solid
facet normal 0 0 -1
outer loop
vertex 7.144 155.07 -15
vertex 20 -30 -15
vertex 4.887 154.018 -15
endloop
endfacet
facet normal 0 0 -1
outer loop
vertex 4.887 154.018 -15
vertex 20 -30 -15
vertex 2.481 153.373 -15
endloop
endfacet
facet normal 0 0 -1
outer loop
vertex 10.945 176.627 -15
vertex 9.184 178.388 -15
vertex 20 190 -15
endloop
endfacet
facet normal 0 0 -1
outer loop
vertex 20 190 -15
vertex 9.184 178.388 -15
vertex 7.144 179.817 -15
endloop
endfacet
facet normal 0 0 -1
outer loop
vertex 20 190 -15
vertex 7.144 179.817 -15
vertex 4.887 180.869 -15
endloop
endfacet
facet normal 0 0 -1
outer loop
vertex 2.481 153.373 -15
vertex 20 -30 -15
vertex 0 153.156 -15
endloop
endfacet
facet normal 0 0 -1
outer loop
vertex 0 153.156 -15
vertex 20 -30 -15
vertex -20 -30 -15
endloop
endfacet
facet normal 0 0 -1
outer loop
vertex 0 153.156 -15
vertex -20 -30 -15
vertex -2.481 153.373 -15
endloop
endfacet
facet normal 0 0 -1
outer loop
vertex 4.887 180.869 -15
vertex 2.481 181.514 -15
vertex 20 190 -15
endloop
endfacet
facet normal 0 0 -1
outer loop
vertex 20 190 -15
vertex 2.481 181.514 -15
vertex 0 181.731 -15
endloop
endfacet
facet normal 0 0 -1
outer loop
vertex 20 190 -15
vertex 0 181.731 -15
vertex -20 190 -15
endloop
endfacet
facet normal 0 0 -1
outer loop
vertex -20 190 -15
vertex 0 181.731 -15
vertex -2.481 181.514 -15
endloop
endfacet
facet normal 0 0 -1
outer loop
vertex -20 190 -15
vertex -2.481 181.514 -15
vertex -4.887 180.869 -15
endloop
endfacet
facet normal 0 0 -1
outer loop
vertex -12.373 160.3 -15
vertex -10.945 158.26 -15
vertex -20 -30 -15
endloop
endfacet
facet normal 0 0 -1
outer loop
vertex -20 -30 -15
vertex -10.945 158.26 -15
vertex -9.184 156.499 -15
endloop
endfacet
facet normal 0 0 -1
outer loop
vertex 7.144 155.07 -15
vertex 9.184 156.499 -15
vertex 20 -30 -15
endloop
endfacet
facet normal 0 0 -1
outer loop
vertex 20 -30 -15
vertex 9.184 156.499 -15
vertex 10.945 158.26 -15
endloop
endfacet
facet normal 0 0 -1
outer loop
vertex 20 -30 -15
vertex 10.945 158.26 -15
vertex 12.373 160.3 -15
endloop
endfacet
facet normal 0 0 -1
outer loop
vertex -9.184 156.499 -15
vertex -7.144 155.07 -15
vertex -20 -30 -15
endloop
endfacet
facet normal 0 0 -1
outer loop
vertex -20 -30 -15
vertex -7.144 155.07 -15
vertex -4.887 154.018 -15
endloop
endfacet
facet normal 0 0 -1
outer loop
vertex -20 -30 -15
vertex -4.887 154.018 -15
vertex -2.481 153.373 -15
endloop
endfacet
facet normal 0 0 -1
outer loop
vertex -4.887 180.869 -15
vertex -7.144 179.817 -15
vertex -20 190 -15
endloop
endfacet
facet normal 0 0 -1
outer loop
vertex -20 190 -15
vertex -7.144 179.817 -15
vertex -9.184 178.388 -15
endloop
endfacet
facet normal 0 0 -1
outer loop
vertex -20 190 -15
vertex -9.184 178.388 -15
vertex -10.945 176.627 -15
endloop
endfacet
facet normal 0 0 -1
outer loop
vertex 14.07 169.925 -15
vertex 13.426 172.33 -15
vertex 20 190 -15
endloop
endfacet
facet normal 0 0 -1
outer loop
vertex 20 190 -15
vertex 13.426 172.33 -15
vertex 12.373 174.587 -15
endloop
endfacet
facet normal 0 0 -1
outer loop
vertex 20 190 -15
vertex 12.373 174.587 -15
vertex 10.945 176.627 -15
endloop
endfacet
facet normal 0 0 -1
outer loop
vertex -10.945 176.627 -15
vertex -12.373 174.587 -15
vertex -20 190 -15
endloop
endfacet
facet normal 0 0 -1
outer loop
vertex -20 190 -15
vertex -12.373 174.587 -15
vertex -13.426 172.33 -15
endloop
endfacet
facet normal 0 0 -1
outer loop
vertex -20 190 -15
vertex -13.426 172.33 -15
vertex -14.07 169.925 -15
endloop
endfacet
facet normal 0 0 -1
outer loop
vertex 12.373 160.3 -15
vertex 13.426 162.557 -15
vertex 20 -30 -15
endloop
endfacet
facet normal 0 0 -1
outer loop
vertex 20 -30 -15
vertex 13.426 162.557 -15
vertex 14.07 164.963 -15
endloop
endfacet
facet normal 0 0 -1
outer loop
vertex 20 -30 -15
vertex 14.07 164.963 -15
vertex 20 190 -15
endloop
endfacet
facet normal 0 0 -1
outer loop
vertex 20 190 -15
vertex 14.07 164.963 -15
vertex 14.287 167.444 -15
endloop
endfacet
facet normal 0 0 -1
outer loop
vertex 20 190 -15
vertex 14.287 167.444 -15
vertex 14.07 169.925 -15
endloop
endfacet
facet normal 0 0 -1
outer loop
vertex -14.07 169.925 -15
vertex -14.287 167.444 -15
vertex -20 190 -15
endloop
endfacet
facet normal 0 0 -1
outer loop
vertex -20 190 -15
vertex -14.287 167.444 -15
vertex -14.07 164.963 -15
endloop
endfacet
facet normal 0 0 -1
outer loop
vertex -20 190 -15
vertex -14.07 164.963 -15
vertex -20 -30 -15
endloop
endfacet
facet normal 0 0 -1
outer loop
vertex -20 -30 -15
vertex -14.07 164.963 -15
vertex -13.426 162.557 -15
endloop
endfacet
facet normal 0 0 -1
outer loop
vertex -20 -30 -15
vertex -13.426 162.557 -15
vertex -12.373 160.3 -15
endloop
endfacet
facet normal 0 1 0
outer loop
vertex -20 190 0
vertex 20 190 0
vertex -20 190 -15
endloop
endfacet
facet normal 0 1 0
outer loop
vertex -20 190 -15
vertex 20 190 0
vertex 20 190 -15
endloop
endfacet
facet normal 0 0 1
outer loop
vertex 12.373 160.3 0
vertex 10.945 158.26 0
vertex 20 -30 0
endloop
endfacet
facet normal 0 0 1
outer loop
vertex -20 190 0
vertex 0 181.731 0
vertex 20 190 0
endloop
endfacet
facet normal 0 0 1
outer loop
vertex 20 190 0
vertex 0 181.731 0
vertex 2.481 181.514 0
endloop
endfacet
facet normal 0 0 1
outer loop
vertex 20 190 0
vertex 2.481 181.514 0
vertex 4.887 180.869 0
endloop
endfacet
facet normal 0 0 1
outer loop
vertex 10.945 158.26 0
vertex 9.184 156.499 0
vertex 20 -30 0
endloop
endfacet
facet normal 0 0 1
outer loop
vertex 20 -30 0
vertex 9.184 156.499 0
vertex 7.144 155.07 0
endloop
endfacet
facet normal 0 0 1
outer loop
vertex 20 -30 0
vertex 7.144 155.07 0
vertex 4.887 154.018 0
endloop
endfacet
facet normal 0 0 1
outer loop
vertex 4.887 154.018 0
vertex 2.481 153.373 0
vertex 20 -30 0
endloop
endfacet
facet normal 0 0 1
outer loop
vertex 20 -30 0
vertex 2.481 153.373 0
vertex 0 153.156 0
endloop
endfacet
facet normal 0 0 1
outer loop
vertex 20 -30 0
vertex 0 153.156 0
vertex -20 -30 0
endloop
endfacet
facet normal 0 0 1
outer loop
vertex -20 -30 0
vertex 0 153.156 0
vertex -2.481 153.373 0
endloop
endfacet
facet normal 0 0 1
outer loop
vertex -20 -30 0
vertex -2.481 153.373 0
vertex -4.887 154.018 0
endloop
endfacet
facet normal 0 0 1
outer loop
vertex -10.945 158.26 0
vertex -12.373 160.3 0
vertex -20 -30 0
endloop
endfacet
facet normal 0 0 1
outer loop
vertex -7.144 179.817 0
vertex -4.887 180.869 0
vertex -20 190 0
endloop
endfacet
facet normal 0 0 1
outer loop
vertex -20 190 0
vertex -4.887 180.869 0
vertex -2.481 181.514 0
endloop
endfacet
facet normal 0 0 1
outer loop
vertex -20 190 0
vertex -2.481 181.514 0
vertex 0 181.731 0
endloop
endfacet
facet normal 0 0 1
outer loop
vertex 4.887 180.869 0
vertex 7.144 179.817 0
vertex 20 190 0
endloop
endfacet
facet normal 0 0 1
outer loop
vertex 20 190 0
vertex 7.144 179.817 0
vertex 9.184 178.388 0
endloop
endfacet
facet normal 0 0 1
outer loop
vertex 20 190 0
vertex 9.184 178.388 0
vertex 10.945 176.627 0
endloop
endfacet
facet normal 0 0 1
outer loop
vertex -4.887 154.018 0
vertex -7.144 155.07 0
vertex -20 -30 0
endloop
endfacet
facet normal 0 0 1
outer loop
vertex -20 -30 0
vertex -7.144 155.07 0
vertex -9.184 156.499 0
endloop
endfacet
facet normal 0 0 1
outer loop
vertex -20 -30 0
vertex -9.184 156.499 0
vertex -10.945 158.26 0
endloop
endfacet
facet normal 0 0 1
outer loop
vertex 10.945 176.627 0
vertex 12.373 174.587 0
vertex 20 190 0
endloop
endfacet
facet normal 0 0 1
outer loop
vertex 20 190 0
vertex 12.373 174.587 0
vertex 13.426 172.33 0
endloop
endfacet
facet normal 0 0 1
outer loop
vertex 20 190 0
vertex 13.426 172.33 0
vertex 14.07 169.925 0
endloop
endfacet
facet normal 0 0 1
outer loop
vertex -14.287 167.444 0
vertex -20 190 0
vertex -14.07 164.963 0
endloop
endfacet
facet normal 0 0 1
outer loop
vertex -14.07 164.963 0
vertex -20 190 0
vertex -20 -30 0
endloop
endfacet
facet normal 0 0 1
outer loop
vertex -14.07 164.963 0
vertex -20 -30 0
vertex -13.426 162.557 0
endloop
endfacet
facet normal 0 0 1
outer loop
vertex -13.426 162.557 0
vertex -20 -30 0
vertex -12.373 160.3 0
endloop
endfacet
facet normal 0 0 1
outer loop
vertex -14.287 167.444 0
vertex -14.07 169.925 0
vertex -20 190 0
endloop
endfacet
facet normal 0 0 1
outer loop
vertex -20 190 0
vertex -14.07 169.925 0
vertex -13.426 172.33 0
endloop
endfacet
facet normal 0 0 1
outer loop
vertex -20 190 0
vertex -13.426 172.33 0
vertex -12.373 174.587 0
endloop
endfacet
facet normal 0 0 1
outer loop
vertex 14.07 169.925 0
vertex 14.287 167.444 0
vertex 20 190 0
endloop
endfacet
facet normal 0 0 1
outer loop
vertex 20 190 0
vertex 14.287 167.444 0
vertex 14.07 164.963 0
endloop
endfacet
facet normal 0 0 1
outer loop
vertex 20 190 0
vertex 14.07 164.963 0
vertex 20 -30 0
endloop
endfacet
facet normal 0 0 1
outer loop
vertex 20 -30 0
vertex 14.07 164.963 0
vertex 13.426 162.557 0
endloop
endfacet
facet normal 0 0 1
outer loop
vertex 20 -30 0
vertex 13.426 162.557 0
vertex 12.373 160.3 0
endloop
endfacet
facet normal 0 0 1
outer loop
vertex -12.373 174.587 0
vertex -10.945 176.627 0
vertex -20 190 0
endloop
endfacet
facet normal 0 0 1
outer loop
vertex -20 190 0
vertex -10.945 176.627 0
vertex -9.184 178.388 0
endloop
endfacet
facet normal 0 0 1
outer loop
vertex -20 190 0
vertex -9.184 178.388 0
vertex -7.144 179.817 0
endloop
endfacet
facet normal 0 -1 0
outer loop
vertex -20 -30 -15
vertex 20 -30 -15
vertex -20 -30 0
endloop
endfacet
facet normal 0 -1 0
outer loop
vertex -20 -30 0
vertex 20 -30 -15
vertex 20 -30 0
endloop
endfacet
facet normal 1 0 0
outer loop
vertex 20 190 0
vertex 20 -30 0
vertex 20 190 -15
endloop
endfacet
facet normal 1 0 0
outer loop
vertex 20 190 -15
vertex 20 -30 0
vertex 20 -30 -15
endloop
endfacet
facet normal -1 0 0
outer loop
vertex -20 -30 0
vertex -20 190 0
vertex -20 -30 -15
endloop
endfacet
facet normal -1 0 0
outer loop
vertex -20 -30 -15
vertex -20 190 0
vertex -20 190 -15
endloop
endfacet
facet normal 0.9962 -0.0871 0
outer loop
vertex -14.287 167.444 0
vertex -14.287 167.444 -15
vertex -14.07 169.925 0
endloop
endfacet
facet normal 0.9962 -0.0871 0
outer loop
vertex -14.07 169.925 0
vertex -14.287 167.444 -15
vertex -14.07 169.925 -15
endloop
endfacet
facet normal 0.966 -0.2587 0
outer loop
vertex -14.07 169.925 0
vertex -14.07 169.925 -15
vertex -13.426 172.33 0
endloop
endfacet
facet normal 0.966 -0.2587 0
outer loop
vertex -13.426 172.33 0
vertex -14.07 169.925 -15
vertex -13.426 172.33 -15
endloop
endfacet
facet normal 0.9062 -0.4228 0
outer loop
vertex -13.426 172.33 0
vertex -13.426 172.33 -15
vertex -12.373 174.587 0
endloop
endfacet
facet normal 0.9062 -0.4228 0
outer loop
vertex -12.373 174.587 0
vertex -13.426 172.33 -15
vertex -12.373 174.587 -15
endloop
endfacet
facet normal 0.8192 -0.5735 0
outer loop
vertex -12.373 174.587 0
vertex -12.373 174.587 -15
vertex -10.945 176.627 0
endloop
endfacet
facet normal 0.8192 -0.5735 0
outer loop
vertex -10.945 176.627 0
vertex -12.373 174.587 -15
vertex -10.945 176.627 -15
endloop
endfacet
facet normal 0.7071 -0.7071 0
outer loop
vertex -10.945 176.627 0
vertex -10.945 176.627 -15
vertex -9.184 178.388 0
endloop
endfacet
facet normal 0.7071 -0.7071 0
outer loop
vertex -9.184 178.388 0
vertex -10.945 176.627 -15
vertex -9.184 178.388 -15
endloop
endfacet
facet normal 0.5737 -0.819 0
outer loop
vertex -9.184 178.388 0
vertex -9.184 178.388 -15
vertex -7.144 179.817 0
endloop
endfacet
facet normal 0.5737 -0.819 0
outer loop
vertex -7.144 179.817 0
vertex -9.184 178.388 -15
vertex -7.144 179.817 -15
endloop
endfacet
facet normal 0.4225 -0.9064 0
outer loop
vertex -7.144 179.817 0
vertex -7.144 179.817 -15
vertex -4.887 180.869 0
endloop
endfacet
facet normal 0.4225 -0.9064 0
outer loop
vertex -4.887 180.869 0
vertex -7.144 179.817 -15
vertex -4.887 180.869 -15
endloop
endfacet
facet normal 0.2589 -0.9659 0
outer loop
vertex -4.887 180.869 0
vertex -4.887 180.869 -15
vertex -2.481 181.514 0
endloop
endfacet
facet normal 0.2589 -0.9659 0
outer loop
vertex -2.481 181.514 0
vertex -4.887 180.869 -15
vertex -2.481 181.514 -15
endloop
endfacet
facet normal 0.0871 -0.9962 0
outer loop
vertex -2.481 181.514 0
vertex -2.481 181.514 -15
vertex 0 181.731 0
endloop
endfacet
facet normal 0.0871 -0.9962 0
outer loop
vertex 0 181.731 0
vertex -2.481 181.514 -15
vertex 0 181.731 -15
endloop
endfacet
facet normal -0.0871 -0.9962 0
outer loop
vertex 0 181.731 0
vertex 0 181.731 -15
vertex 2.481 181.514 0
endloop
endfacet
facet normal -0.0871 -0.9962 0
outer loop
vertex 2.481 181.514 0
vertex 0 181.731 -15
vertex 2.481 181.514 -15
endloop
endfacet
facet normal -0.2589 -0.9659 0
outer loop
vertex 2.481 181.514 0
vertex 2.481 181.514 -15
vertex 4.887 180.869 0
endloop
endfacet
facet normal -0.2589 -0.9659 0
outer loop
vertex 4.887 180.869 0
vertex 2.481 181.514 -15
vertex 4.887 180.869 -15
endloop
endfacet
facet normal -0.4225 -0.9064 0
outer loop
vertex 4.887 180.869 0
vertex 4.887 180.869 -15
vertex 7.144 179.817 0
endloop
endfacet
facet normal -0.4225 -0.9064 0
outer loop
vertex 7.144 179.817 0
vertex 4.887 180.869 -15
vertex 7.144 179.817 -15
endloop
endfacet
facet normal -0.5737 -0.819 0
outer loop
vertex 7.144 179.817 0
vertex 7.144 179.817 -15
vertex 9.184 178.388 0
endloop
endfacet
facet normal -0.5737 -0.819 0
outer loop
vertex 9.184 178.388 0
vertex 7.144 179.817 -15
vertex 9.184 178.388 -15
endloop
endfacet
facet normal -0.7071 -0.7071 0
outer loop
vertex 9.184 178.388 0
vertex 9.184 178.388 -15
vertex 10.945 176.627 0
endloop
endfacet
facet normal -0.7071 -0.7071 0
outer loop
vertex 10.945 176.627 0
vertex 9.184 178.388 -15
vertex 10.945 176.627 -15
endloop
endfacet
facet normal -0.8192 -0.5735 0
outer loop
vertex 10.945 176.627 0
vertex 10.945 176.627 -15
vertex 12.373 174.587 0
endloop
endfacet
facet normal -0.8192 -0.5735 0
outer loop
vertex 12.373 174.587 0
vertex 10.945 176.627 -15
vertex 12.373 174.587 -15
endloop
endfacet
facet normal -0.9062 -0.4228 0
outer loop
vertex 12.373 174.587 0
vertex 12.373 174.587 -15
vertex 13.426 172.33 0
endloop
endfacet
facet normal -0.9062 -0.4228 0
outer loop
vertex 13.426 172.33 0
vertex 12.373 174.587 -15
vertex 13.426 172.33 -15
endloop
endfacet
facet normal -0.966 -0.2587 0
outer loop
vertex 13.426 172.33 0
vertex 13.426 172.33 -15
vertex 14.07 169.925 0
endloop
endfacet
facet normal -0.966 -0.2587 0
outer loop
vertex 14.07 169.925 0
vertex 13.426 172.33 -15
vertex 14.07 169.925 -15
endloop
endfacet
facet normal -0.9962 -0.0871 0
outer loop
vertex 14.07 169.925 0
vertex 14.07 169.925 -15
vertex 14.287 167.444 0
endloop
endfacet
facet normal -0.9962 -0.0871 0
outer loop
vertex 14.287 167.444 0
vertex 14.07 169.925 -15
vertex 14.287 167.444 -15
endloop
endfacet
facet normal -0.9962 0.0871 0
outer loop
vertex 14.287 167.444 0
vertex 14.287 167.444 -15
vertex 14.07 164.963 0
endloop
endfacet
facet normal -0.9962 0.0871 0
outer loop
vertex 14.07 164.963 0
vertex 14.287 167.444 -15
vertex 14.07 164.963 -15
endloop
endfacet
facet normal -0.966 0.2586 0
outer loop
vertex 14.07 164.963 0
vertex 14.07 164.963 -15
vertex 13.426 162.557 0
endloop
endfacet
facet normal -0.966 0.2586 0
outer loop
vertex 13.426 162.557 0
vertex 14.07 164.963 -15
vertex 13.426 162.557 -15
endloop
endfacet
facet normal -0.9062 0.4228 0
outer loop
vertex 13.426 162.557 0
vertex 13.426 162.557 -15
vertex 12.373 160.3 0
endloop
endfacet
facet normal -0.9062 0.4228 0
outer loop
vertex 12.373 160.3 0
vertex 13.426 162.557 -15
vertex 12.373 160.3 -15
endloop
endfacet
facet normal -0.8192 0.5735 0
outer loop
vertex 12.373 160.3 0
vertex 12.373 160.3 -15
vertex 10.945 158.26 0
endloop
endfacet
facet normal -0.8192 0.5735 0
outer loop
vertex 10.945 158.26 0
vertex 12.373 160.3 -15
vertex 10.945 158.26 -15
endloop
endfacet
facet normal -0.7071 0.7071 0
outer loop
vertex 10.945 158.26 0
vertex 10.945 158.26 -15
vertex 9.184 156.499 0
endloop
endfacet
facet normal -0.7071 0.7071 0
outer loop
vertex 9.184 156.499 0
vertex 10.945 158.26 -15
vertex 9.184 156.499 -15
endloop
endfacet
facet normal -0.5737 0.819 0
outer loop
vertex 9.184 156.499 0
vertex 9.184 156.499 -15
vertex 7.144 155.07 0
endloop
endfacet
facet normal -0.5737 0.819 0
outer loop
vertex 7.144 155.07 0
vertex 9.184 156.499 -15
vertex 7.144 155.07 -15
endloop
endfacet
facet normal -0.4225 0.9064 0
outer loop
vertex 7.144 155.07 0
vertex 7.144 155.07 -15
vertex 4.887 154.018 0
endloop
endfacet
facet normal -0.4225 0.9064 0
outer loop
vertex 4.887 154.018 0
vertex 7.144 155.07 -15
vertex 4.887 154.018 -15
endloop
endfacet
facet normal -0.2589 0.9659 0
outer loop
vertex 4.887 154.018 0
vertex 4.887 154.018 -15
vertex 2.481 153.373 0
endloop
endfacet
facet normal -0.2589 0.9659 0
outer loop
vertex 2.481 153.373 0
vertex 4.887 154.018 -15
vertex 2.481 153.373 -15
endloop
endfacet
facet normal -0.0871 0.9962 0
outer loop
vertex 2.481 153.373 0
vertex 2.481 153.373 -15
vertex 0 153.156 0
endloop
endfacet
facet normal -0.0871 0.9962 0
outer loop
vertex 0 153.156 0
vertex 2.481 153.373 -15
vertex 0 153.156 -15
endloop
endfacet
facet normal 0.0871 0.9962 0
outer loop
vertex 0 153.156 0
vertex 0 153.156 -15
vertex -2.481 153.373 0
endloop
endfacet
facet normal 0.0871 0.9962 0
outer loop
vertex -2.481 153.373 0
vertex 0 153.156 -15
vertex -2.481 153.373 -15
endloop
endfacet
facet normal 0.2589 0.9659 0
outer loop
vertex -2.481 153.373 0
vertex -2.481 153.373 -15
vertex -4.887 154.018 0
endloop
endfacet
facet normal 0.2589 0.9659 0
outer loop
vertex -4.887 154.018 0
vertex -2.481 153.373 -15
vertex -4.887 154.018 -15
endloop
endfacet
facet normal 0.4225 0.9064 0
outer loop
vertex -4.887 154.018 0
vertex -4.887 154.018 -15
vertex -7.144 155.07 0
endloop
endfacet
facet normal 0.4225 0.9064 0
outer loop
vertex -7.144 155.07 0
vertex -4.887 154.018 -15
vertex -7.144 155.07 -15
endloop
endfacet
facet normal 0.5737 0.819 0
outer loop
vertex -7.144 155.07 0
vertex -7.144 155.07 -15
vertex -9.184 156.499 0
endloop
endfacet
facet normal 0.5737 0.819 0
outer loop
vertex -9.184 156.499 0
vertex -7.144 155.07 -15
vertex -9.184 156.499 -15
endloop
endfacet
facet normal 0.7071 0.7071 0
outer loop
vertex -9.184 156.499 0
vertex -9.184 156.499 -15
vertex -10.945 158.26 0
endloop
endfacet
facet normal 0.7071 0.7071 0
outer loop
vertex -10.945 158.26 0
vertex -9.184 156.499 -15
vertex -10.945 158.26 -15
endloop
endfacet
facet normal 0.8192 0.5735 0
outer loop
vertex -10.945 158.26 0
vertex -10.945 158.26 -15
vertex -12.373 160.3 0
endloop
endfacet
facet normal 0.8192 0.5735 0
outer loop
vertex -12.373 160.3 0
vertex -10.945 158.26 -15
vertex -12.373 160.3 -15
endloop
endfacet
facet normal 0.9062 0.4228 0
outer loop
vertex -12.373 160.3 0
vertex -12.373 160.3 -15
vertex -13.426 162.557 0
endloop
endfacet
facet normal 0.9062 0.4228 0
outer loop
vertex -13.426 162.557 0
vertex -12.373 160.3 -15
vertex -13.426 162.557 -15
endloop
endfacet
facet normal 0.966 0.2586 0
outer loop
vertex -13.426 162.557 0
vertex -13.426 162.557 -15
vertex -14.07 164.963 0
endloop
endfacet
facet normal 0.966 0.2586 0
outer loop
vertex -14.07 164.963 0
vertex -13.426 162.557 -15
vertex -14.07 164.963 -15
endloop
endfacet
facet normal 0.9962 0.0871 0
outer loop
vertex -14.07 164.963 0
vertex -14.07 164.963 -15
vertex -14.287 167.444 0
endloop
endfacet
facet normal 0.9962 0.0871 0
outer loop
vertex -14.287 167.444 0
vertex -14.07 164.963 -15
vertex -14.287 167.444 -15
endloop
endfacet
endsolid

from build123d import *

# Parameters (mm, degrees)
BOSS_EXTRUDE1_DEPTH      = 20
BOSS_EXTRUDE1_DEPTH_BACK = 20
SKETCH1_W                = 15
SKETCH1_H                = 220
CUT_EXTRUDE1_REACH       = 193.638
SKETCH5_R                = 14.2875


with BuildPart() as part:
    # Sketch1 → Boss-Extrude1 (new, two sides: drawn at the far end of the back side and taken through both)
    with BuildSketch(Plane.ZY.offset(-BOSS_EXTRUDE1_DEPTH_BACK)):
        with Locations((-7.5, 80)):
            Rectangle(SKETCH1_W, SKETCH1_H)
    extrude(amount=BOSS_EXTRUDE1_DEPTH + BOSS_EXTRUDE1_DEPTH_BACK)

    # Sketch5 → Cut-Extrude1 (cut, up to next)
    with BuildSketch(Plane(origin=(0, 0, -15), x_dir=(-1, 0, 0), z_dir=(0, 0, -1)), mode=Mode.PRIVATE) as cut_extrude1_sk1:
        with Locations((0, 167.443589791)):
            Circle(SKETCH5_R)
    cut_extrude1_tool1 = extrude(cut_extrude1_sk1.sketch, amount=-CUT_EXTRUDE1_REACH, mode=Mode.PRIVATE) & part.part
    add(cut_extrude1_tool1.solids().sort_by_distance((0, 167.44359, -15))[0], mode=Mode.SUBTRACT)


solid = part.part
